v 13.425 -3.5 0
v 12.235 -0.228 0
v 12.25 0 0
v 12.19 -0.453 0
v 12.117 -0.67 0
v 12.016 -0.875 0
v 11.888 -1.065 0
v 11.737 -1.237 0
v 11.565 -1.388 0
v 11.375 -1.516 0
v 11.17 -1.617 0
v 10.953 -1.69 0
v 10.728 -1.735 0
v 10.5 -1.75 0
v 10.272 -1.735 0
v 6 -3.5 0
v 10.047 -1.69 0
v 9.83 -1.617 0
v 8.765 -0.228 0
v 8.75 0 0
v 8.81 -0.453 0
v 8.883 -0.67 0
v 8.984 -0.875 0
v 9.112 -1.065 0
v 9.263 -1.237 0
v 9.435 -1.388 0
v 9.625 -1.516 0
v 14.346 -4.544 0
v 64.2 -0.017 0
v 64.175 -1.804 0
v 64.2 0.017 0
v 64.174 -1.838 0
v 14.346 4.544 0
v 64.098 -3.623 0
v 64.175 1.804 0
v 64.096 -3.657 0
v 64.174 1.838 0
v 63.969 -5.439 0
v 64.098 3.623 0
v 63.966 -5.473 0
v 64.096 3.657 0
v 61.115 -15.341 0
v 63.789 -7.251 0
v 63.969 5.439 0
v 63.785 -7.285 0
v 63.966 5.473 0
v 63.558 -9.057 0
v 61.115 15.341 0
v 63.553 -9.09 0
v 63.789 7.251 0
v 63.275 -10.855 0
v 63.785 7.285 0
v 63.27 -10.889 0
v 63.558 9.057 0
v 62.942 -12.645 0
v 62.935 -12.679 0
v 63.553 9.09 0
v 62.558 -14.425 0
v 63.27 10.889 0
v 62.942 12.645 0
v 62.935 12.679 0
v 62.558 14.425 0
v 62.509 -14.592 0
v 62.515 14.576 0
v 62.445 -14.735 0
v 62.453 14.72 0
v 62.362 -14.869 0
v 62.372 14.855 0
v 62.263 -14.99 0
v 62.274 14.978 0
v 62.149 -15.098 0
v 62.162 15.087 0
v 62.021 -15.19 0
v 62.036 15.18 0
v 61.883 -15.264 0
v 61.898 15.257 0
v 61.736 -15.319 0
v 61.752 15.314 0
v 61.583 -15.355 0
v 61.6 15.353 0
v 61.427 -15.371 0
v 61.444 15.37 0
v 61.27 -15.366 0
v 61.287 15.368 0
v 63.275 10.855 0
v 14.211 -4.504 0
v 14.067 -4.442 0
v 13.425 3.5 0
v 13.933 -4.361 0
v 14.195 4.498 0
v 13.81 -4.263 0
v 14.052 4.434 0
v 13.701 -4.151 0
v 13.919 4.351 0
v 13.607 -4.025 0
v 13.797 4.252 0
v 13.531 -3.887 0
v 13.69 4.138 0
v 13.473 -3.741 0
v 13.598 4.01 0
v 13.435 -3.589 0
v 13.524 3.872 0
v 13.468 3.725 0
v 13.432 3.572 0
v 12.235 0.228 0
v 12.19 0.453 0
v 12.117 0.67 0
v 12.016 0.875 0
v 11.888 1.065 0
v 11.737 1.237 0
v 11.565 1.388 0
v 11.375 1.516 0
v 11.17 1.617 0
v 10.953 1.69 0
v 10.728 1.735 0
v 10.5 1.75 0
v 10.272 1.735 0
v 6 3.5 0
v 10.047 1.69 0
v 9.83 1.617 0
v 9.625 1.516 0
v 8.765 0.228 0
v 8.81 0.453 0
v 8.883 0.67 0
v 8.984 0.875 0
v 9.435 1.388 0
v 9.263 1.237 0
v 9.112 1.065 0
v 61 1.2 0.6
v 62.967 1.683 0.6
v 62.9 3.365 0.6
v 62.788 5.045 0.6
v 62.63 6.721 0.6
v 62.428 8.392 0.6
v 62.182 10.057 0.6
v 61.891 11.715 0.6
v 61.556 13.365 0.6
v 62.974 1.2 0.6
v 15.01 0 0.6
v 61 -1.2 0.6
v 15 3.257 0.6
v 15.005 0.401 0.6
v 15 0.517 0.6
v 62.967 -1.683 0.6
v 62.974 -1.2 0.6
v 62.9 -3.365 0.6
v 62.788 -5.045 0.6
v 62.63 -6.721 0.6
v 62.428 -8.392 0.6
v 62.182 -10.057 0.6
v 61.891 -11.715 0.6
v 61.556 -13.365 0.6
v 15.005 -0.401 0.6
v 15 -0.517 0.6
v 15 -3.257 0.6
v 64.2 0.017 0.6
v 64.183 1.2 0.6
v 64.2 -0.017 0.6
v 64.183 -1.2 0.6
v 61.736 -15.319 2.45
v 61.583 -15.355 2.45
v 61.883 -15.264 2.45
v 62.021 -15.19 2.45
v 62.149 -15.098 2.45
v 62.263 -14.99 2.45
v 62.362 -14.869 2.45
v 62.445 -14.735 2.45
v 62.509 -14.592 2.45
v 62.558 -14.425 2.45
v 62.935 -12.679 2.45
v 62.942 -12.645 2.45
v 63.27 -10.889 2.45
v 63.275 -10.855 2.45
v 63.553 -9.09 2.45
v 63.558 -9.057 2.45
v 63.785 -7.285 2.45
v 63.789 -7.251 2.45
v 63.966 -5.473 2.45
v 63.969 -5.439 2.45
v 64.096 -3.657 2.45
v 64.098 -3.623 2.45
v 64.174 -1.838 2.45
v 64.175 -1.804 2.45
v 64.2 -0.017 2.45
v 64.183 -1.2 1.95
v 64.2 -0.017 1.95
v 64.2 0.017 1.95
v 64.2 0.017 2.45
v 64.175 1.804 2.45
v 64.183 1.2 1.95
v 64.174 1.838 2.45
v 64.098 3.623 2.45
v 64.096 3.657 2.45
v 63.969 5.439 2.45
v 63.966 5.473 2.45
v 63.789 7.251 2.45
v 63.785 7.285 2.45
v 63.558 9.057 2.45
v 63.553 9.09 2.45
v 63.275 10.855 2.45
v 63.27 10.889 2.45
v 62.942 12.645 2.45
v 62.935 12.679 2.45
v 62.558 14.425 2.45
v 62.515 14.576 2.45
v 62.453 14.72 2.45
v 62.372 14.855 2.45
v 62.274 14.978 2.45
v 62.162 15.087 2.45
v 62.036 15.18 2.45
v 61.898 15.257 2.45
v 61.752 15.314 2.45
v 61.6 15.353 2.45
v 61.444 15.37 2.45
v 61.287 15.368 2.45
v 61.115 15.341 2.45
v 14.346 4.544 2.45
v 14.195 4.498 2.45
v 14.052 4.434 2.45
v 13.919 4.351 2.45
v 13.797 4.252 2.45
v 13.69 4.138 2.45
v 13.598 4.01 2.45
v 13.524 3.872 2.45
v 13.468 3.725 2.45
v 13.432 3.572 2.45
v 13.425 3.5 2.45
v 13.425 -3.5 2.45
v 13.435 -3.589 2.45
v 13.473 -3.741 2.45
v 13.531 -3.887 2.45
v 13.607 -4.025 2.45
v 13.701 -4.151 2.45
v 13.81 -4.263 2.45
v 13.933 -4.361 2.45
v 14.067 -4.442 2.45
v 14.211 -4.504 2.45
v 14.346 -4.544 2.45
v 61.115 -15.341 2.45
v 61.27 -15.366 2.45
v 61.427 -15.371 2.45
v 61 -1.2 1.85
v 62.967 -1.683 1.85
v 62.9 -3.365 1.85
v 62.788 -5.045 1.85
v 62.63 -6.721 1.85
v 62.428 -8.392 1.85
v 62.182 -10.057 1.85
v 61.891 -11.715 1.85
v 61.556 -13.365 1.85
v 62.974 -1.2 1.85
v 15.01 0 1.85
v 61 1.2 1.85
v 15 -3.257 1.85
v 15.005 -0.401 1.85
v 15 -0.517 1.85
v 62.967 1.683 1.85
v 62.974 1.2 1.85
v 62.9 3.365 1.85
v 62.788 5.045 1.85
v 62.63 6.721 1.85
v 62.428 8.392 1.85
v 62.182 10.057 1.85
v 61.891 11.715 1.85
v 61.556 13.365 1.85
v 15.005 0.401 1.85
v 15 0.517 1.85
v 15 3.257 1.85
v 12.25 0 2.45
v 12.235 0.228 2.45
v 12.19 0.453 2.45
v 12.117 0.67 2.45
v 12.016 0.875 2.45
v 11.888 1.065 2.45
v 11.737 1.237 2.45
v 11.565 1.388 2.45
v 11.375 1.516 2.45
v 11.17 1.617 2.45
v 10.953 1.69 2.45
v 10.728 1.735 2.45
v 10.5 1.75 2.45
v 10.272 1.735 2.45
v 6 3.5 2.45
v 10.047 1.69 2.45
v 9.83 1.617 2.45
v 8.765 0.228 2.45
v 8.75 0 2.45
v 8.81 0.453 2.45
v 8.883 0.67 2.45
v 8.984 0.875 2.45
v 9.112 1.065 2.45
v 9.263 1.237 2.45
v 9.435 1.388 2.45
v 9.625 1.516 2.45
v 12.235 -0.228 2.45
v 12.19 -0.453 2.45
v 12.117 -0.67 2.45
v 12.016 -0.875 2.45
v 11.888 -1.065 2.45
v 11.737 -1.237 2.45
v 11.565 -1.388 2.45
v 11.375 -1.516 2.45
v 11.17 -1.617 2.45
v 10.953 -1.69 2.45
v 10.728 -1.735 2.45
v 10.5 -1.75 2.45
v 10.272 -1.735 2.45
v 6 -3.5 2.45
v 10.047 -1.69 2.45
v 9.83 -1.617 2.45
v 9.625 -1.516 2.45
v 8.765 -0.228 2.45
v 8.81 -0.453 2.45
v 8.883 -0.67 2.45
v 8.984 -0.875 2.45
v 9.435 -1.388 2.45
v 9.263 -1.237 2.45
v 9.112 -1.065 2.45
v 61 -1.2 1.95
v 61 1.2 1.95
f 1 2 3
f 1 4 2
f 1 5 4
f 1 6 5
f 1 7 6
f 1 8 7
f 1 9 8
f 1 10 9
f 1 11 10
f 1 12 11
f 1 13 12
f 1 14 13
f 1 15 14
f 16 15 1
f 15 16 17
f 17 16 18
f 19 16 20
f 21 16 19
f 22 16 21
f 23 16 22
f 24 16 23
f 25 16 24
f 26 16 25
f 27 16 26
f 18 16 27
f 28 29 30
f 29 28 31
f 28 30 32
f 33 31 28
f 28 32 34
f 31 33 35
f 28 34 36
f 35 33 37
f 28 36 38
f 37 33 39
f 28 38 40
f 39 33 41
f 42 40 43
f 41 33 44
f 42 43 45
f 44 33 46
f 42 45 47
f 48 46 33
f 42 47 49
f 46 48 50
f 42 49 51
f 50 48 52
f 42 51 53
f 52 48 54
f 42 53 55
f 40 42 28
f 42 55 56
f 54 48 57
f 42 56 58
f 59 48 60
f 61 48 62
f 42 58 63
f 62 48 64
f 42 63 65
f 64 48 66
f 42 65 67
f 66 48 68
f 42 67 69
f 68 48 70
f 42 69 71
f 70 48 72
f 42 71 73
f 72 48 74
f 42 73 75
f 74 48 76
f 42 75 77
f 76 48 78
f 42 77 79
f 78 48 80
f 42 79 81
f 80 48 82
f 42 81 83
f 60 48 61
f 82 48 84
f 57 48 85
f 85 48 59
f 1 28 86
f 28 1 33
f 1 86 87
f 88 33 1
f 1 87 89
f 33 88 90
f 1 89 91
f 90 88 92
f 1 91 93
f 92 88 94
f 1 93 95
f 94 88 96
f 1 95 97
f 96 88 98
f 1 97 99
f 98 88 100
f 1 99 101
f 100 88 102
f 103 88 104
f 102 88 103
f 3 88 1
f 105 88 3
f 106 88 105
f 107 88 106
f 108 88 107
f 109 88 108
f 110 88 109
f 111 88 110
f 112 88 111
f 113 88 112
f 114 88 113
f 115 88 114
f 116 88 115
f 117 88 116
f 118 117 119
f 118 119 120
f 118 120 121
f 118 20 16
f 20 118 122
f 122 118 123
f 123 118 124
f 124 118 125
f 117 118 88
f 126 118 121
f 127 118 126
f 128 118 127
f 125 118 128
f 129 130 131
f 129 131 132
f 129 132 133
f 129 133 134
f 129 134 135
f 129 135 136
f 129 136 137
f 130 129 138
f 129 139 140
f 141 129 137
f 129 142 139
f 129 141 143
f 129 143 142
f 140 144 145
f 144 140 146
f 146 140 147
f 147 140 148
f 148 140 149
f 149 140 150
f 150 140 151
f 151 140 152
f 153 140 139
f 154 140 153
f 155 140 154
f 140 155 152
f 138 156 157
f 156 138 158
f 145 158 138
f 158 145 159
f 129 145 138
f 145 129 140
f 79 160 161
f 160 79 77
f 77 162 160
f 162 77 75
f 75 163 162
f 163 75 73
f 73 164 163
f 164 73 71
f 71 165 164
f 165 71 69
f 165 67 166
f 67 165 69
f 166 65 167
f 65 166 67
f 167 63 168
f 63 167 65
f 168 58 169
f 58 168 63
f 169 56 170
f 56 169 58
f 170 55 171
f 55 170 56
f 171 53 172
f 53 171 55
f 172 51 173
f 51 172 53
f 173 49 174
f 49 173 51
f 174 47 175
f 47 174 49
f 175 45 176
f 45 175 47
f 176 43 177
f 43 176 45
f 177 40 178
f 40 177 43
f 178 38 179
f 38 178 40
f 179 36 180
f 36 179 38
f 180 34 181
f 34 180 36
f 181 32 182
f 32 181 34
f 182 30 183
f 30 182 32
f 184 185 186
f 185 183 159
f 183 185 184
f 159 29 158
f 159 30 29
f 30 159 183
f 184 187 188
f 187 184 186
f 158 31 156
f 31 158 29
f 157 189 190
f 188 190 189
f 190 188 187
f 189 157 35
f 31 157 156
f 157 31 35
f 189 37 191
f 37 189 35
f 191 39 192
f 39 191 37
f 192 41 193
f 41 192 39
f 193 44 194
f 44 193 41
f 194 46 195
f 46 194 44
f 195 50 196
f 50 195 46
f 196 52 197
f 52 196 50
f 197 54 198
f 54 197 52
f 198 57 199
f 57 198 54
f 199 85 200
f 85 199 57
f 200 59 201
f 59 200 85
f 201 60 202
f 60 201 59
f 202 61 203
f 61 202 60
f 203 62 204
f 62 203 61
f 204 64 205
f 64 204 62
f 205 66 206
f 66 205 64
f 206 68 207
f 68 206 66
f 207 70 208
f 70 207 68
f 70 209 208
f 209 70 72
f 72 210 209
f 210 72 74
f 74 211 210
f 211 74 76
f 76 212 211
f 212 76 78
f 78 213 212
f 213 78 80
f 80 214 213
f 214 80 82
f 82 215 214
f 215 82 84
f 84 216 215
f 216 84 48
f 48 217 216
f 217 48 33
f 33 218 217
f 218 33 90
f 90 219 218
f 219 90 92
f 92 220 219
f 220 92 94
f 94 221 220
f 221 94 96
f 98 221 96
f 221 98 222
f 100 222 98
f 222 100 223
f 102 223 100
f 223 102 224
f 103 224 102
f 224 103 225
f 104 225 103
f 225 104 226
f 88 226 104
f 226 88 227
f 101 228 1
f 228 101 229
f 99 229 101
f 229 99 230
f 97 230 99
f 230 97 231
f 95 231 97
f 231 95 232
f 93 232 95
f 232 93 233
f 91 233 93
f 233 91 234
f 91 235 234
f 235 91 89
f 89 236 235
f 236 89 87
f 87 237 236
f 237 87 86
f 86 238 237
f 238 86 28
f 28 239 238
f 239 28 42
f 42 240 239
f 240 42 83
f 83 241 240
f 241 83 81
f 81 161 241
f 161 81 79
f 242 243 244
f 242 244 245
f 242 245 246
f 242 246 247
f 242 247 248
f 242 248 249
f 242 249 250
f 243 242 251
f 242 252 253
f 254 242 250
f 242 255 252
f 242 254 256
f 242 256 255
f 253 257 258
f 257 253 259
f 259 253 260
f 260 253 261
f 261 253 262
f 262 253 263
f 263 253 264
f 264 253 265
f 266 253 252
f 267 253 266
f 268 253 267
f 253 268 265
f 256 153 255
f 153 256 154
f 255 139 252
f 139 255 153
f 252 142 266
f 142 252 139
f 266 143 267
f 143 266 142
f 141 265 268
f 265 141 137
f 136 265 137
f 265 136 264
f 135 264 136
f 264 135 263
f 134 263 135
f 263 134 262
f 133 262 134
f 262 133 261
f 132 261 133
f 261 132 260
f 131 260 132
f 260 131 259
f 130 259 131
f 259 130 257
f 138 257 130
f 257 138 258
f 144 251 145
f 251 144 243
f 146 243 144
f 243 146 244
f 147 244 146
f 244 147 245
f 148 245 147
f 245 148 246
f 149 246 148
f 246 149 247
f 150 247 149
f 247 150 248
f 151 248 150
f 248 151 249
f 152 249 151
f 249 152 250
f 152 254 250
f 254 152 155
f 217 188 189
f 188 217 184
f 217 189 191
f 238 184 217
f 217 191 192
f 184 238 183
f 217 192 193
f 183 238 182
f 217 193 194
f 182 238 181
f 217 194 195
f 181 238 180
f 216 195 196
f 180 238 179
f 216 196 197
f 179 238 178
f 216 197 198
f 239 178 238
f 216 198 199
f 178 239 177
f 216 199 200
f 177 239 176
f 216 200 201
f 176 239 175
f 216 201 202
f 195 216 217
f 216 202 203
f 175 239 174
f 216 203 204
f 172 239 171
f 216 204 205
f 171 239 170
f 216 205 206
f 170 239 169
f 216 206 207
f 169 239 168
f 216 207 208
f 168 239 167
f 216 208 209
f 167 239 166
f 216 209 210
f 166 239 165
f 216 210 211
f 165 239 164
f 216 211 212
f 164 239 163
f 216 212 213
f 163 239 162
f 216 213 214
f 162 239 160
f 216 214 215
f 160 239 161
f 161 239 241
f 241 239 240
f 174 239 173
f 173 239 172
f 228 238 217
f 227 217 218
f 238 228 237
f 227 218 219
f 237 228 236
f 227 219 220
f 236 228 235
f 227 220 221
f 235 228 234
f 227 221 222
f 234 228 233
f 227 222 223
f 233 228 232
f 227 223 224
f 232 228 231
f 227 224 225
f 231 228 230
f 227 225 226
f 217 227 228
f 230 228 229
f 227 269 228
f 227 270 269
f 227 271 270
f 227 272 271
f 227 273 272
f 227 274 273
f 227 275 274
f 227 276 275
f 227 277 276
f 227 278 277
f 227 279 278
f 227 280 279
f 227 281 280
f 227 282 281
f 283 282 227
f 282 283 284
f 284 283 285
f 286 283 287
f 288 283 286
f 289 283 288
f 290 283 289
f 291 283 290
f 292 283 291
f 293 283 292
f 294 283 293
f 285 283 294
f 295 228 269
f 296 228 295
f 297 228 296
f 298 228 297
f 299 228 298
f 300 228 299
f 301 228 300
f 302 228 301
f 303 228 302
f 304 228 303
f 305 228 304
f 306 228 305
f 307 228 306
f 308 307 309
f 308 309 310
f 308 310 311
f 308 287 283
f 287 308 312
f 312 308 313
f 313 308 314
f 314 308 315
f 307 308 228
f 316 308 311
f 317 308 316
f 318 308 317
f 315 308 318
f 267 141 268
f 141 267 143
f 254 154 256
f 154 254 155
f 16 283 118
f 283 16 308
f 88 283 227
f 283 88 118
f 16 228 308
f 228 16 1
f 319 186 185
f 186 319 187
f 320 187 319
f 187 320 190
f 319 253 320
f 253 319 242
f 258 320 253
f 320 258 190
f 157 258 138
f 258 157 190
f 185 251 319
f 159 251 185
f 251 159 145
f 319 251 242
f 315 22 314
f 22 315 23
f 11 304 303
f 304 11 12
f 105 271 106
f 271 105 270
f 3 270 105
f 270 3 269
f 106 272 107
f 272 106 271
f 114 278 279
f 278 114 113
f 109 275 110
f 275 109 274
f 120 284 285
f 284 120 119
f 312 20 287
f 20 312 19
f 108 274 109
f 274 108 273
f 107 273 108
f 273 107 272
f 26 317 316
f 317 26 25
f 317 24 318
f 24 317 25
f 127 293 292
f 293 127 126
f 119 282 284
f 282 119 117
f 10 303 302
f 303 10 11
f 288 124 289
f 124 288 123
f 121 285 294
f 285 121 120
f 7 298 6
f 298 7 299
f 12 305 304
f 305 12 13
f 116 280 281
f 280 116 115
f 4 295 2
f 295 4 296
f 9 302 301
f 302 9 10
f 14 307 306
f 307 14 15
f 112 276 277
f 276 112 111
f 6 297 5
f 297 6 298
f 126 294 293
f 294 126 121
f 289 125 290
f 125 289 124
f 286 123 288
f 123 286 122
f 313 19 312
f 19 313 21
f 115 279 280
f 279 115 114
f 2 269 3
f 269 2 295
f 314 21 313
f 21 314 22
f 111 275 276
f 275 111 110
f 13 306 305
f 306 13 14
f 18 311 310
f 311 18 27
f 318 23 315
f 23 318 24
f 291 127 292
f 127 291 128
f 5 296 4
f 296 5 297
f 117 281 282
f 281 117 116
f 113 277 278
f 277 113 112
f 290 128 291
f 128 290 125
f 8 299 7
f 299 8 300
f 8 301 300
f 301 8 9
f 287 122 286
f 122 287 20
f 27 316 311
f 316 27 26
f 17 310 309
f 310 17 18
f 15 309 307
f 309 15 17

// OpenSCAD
// file: parameters.scad
// =============================================================================
// Gen-AQ Dual-rotor copper-centroid ultra AFPM - WOUND-AWARE (HARD GATE)
// PRIMARY challenger vs Gen-AN. Magnets @ R=39.0 + 205 t + former_web 1.25 -> m2m 4.71.
// =============================================================================

// --- Wire / wind budget (26 AWG, ~1 lb spool ~ 390 m bare-equiv) --------------
wire_awg            = 26;
wire_od             = 0.45;     // insulated OD mm
turns               = 205;      // +5 vs Gen-AN 200
fill                = 0.70;
layers_per_face     = 2;        // axial layers proud of EACH flange
wind_build_axial    = layers_per_face * wire_od * fill;   // 0.63 mm
wind_build_radial   = 3 * wire_od * fill;                 // 0.945 mm

// --- Pancake former (bare STL) -----------------------------------------------
coil_id_r           = 15.0;     // copper-centroid window centered ~R=39.0
coil_od_r           = 63.0;
span_deg            = 26.0;     // 12 stations x 30 deg pitch
former_web          = 1.25;     // thinner vs AN 1.30 (print-safe >=1.20 LB)
flange_t            = 0.60;
wall                = 1.2;
slot_w              = 2.4;
mount_hole          = 3.5;
tab_len             = 7.0;

former_bare_h       = former_web + 2 * flange_t;            // 2.45 mm
coil_envelope_h     = former_bare_h + 2 * wind_build_axial; // 3.71 mm

// --- Running clearance (magnet face -> WOUND face) EACH side ------------------
run_clear           = 0.50;     // PASS floor >= 0.5
gap_spacer_h        = run_clear + wind_build_axial;         // 1.13 mm
m2m                 = coil_envelope_h + 2 * run_clear;      // 4.71 mm (beats Gen-AN 4.76)

// --- Mid stator (12 pancakes 3ph; winds proud both faces) ---------------------
coil_stations       = 12;
bay_r_in            = coil_id_r - 2.0 - wind_build_radial;
bay_r_out           = coil_od_r + 2.0 + wind_build_radial;
bay_span            = span_deg + 4.0;
bay_offset          = 2.0;
stator_thick        = former_bare_h;                        // winds proud +/-Z
stator_od           = 160.0;
shaft_clear_stator  = 34.0;
coil_mount_r        = 25.0;

// --- Rotors (x2) - 8xO20 @ R=39.0 (copper centroid) + 24xO5 Halbach ----------
large_pocket_d      = 20.3;
small_pocket_d      = 5.3;
pocket_h            = 5.2;
large_n             = 8;
R_large             = 39.0;     // covers ~29-49 over copper centroid ~39.0
R_small_inner       = 24.0;
R_small_mid         = 39.0;
R_small_outer       = 56.0;
carrier_od          = 156.0;
carrier_thick       = 7.5;
hub_h               = 10.0;
hub_od              = 30.0;
rotor_b_offset_deg  = 22.5;

// --- Modular MAX interface (Gen-E family) ------------------------------------
shaft_bore          = 8.35;
bearing_d           = 21.85;
bearing_h           = 7.2;
m3_clear            = 3.5;
bolt_r_inner        = 36.0;
bolt_n_inner        = 6;
flange_bolt_r       = 72.0;
flange_bolt_n       = 6;
brace_r             = 68.0;
brace_d             = 4.3;
brace_n             = 4;

spacer_pad_od       = 14.0;
spacer_pad_id       = m3_clear;
endbell_od          = 160.0;
endbell_thick       = 8.0;
endbell_shaft_clear = 10.0;

$fn = 64;
// main file
// Gen-AQ pancake former — wind BEFORE assembly
include <parameters.scad>;
$fn = 48;

module sector_2d(r_in, r_out, ang) {
    polygon([
        for (a = [-ang/2 : ang/16 : ang/2]) [r_in*cos(a), r_in*sin(a)],
        for (a = [ang/2 : -ang/16 : -ang/2]) [r_out*cos(a), r_out*sin(a)]
    ]);
}
module flange() {
    linear_extrude(flange_t) offset(r=wall) sector_2d(coil_id_r, coil_od_r, span_deg);
}
difference() {
    union() {
        flange();
        translate([0, 0, flange_t])
            linear_extrude(former_web)
                difference() {
                    offset(r=wall) sector_2d(coil_id_r, coil_od_r, span_deg);
                    sector_2d(coil_id_r + 0.01, coil_od_r - 0.01, span_deg - 1.5);
                }
        translate([0, 0, flange_t + former_web]) flange();
        translate([coil_id_r - tab_len - 2, -3.5, 0])
            cube([tab_len + 2, 7, former_bare_h]);
    }
    translate([coil_od_r - 2, -slot_w/2, flange_t])
        cube([wall + 4, slot_w, former_web + 0.1]);
    translate([coil_id_r - tab_len/2 - 1, 0, -0.1])
        cylinder(d=mount_hole, h=former_bare_h + 1);
}
